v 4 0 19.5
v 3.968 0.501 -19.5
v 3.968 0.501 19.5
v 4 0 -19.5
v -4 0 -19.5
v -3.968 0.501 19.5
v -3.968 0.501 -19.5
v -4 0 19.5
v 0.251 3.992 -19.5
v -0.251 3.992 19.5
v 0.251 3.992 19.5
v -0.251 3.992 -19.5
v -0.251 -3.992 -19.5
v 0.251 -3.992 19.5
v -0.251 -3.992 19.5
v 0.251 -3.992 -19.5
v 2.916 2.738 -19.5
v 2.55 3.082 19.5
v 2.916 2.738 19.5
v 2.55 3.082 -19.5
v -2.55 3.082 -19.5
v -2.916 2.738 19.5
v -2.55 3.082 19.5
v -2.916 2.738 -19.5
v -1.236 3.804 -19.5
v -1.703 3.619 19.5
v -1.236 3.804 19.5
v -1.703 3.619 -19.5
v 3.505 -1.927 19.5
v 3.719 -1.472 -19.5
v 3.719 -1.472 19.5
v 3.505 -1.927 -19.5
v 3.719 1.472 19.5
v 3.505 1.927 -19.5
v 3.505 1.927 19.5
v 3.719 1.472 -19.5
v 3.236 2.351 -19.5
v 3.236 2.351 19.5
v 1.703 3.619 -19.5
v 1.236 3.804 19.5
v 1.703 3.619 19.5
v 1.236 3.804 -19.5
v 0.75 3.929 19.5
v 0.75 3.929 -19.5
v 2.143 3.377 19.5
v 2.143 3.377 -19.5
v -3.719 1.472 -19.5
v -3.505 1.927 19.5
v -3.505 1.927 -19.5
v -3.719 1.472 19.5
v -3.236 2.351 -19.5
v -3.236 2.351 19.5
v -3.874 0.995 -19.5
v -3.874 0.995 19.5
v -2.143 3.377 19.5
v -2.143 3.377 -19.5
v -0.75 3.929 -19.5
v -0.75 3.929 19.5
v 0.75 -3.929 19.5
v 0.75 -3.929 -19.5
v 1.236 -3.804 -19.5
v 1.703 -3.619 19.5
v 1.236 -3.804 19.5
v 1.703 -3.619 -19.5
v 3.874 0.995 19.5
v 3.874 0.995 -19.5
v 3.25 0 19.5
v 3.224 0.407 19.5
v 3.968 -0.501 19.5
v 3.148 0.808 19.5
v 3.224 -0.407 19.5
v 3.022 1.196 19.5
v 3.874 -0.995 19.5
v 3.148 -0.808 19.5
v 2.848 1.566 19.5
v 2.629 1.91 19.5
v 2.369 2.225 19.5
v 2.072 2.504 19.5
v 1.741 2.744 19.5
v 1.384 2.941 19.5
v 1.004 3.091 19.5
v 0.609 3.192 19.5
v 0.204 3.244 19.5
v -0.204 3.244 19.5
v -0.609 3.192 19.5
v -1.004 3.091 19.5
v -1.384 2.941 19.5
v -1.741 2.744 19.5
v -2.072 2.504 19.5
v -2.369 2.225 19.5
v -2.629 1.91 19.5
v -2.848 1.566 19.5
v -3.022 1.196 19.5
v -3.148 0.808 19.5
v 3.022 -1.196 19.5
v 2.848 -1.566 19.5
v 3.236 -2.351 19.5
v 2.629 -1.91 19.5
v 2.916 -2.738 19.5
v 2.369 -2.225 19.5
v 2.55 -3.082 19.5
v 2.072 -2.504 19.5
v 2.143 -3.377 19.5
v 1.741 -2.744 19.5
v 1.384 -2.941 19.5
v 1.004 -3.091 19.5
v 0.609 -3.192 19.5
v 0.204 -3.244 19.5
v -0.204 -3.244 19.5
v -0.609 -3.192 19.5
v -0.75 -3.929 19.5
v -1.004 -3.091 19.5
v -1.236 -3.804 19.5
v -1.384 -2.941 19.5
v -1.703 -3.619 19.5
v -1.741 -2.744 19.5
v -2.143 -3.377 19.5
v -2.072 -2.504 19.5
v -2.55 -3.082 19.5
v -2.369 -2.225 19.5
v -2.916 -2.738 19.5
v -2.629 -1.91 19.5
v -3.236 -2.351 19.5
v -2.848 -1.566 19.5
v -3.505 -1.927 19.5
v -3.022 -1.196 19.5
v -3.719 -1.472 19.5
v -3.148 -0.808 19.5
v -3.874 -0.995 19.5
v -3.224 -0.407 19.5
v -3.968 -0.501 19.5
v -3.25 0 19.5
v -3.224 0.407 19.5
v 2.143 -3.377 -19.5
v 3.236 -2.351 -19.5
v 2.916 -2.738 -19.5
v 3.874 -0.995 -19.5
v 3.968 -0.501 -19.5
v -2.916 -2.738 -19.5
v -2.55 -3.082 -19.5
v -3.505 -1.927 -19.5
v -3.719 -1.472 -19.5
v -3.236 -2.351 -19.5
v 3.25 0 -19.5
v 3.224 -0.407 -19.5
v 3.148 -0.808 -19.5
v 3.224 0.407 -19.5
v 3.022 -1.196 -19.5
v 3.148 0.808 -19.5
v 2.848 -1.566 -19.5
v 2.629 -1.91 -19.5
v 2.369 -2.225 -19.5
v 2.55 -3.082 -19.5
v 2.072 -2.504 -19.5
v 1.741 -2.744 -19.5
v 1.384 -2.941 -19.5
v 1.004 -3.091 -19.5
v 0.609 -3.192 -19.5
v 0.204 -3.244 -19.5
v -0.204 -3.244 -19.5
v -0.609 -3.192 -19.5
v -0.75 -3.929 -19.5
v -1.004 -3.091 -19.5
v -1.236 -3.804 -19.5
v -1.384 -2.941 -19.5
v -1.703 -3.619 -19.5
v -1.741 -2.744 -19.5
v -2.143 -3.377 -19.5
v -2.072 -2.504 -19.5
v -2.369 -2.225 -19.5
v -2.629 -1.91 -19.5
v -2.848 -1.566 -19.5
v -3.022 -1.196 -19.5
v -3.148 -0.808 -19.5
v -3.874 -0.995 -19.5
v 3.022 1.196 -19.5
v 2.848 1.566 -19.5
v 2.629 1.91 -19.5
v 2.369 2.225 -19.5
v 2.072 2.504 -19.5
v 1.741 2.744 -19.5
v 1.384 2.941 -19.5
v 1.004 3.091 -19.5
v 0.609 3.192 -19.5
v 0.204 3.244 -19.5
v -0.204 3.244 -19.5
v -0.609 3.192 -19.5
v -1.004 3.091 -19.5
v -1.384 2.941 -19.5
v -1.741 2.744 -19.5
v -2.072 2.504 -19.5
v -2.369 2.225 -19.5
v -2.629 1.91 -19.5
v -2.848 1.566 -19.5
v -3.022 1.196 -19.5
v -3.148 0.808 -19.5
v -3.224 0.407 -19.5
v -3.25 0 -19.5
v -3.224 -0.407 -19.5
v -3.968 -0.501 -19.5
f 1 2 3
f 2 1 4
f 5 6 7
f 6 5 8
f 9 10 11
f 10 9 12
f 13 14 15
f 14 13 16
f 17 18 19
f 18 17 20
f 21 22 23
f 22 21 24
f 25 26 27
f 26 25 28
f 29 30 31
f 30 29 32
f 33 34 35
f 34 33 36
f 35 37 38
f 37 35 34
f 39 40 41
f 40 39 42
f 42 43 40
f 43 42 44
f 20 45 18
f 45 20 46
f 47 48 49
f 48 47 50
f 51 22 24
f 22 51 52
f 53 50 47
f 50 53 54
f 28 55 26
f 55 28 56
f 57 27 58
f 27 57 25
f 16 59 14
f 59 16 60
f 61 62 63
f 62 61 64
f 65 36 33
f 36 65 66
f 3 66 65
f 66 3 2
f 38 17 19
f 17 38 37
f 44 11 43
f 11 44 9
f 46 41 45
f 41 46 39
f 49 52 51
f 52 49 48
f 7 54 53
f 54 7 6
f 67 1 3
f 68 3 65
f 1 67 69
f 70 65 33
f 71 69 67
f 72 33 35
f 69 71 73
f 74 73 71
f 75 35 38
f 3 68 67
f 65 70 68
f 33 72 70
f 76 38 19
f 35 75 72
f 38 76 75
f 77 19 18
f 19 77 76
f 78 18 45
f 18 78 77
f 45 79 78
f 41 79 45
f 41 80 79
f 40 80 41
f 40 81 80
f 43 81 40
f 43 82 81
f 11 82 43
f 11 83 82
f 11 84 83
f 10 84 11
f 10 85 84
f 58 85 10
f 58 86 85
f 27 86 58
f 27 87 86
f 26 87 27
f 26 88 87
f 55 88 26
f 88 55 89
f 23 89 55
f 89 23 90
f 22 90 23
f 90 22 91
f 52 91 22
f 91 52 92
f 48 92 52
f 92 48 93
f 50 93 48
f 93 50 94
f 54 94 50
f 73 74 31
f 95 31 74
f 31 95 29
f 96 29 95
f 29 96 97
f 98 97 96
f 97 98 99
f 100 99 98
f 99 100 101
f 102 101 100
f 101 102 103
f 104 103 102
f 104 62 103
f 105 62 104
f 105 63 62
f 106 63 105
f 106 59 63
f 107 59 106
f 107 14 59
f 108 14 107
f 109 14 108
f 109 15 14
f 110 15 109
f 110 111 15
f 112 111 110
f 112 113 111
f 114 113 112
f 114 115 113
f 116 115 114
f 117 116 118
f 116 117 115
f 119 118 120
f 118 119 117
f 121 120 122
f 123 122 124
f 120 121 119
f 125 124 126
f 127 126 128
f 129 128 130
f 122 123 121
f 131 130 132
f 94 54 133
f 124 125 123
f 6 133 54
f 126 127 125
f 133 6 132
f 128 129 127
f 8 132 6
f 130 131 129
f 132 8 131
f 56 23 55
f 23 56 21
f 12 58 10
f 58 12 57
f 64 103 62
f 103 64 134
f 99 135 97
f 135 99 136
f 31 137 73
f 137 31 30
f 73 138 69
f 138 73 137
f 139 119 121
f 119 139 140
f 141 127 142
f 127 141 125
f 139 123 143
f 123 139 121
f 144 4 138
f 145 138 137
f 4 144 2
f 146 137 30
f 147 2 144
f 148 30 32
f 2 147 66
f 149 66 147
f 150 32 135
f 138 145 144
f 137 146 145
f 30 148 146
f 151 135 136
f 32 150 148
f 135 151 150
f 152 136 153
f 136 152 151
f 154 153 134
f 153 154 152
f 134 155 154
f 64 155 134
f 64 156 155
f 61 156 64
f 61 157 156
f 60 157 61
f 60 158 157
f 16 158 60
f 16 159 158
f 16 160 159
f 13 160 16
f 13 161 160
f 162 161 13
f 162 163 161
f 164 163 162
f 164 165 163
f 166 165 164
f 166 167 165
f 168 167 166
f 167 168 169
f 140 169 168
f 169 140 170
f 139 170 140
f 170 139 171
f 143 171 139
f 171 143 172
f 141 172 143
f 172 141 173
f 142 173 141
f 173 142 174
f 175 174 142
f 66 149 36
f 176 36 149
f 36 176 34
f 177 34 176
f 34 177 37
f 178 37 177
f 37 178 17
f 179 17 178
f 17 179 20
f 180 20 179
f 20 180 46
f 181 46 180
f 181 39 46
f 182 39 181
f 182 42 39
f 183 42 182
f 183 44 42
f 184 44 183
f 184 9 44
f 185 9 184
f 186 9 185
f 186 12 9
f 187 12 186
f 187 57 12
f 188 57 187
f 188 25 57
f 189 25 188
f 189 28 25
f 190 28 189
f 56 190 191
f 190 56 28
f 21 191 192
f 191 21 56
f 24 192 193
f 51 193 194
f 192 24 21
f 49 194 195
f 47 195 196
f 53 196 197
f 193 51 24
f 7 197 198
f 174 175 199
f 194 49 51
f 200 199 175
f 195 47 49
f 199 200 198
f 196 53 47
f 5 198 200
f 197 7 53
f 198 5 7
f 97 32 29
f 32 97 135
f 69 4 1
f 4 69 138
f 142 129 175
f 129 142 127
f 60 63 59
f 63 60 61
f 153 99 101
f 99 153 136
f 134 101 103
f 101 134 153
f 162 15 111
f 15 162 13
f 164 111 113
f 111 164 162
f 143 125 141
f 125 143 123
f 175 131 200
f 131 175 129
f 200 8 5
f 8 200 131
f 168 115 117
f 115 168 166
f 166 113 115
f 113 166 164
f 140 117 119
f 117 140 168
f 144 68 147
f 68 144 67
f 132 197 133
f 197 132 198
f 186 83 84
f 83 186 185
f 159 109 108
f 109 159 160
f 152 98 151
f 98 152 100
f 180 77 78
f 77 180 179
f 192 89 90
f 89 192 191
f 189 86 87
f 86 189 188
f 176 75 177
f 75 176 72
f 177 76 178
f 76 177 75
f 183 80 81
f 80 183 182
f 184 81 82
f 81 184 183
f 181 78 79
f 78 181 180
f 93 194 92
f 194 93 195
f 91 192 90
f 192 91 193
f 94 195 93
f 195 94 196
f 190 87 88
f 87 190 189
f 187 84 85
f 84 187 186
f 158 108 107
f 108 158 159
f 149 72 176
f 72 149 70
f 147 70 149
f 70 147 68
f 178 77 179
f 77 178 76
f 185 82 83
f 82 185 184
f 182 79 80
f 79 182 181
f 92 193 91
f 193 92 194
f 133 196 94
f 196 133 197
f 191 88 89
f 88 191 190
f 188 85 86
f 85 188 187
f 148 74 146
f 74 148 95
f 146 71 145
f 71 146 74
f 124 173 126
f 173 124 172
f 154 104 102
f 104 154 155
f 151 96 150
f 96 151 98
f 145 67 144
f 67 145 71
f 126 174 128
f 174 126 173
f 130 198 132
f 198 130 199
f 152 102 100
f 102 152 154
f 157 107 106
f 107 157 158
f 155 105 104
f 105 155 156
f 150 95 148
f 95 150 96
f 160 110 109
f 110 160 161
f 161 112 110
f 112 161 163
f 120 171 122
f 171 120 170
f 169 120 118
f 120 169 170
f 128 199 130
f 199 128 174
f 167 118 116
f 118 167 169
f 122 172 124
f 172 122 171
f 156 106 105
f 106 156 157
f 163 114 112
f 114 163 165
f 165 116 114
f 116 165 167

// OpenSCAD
$fn = 50;


difference() {
	union() {
		translate(v = [0, 0, -19.5000000000]) {
			cylinder(h = 39, r = 4.0000000000);
		}
	}
	union() {
		translate(v = [0, 0, -100.0000000000]) {
			cylinder(h = 200, r = 3.2500000000);
		}
	}
}
